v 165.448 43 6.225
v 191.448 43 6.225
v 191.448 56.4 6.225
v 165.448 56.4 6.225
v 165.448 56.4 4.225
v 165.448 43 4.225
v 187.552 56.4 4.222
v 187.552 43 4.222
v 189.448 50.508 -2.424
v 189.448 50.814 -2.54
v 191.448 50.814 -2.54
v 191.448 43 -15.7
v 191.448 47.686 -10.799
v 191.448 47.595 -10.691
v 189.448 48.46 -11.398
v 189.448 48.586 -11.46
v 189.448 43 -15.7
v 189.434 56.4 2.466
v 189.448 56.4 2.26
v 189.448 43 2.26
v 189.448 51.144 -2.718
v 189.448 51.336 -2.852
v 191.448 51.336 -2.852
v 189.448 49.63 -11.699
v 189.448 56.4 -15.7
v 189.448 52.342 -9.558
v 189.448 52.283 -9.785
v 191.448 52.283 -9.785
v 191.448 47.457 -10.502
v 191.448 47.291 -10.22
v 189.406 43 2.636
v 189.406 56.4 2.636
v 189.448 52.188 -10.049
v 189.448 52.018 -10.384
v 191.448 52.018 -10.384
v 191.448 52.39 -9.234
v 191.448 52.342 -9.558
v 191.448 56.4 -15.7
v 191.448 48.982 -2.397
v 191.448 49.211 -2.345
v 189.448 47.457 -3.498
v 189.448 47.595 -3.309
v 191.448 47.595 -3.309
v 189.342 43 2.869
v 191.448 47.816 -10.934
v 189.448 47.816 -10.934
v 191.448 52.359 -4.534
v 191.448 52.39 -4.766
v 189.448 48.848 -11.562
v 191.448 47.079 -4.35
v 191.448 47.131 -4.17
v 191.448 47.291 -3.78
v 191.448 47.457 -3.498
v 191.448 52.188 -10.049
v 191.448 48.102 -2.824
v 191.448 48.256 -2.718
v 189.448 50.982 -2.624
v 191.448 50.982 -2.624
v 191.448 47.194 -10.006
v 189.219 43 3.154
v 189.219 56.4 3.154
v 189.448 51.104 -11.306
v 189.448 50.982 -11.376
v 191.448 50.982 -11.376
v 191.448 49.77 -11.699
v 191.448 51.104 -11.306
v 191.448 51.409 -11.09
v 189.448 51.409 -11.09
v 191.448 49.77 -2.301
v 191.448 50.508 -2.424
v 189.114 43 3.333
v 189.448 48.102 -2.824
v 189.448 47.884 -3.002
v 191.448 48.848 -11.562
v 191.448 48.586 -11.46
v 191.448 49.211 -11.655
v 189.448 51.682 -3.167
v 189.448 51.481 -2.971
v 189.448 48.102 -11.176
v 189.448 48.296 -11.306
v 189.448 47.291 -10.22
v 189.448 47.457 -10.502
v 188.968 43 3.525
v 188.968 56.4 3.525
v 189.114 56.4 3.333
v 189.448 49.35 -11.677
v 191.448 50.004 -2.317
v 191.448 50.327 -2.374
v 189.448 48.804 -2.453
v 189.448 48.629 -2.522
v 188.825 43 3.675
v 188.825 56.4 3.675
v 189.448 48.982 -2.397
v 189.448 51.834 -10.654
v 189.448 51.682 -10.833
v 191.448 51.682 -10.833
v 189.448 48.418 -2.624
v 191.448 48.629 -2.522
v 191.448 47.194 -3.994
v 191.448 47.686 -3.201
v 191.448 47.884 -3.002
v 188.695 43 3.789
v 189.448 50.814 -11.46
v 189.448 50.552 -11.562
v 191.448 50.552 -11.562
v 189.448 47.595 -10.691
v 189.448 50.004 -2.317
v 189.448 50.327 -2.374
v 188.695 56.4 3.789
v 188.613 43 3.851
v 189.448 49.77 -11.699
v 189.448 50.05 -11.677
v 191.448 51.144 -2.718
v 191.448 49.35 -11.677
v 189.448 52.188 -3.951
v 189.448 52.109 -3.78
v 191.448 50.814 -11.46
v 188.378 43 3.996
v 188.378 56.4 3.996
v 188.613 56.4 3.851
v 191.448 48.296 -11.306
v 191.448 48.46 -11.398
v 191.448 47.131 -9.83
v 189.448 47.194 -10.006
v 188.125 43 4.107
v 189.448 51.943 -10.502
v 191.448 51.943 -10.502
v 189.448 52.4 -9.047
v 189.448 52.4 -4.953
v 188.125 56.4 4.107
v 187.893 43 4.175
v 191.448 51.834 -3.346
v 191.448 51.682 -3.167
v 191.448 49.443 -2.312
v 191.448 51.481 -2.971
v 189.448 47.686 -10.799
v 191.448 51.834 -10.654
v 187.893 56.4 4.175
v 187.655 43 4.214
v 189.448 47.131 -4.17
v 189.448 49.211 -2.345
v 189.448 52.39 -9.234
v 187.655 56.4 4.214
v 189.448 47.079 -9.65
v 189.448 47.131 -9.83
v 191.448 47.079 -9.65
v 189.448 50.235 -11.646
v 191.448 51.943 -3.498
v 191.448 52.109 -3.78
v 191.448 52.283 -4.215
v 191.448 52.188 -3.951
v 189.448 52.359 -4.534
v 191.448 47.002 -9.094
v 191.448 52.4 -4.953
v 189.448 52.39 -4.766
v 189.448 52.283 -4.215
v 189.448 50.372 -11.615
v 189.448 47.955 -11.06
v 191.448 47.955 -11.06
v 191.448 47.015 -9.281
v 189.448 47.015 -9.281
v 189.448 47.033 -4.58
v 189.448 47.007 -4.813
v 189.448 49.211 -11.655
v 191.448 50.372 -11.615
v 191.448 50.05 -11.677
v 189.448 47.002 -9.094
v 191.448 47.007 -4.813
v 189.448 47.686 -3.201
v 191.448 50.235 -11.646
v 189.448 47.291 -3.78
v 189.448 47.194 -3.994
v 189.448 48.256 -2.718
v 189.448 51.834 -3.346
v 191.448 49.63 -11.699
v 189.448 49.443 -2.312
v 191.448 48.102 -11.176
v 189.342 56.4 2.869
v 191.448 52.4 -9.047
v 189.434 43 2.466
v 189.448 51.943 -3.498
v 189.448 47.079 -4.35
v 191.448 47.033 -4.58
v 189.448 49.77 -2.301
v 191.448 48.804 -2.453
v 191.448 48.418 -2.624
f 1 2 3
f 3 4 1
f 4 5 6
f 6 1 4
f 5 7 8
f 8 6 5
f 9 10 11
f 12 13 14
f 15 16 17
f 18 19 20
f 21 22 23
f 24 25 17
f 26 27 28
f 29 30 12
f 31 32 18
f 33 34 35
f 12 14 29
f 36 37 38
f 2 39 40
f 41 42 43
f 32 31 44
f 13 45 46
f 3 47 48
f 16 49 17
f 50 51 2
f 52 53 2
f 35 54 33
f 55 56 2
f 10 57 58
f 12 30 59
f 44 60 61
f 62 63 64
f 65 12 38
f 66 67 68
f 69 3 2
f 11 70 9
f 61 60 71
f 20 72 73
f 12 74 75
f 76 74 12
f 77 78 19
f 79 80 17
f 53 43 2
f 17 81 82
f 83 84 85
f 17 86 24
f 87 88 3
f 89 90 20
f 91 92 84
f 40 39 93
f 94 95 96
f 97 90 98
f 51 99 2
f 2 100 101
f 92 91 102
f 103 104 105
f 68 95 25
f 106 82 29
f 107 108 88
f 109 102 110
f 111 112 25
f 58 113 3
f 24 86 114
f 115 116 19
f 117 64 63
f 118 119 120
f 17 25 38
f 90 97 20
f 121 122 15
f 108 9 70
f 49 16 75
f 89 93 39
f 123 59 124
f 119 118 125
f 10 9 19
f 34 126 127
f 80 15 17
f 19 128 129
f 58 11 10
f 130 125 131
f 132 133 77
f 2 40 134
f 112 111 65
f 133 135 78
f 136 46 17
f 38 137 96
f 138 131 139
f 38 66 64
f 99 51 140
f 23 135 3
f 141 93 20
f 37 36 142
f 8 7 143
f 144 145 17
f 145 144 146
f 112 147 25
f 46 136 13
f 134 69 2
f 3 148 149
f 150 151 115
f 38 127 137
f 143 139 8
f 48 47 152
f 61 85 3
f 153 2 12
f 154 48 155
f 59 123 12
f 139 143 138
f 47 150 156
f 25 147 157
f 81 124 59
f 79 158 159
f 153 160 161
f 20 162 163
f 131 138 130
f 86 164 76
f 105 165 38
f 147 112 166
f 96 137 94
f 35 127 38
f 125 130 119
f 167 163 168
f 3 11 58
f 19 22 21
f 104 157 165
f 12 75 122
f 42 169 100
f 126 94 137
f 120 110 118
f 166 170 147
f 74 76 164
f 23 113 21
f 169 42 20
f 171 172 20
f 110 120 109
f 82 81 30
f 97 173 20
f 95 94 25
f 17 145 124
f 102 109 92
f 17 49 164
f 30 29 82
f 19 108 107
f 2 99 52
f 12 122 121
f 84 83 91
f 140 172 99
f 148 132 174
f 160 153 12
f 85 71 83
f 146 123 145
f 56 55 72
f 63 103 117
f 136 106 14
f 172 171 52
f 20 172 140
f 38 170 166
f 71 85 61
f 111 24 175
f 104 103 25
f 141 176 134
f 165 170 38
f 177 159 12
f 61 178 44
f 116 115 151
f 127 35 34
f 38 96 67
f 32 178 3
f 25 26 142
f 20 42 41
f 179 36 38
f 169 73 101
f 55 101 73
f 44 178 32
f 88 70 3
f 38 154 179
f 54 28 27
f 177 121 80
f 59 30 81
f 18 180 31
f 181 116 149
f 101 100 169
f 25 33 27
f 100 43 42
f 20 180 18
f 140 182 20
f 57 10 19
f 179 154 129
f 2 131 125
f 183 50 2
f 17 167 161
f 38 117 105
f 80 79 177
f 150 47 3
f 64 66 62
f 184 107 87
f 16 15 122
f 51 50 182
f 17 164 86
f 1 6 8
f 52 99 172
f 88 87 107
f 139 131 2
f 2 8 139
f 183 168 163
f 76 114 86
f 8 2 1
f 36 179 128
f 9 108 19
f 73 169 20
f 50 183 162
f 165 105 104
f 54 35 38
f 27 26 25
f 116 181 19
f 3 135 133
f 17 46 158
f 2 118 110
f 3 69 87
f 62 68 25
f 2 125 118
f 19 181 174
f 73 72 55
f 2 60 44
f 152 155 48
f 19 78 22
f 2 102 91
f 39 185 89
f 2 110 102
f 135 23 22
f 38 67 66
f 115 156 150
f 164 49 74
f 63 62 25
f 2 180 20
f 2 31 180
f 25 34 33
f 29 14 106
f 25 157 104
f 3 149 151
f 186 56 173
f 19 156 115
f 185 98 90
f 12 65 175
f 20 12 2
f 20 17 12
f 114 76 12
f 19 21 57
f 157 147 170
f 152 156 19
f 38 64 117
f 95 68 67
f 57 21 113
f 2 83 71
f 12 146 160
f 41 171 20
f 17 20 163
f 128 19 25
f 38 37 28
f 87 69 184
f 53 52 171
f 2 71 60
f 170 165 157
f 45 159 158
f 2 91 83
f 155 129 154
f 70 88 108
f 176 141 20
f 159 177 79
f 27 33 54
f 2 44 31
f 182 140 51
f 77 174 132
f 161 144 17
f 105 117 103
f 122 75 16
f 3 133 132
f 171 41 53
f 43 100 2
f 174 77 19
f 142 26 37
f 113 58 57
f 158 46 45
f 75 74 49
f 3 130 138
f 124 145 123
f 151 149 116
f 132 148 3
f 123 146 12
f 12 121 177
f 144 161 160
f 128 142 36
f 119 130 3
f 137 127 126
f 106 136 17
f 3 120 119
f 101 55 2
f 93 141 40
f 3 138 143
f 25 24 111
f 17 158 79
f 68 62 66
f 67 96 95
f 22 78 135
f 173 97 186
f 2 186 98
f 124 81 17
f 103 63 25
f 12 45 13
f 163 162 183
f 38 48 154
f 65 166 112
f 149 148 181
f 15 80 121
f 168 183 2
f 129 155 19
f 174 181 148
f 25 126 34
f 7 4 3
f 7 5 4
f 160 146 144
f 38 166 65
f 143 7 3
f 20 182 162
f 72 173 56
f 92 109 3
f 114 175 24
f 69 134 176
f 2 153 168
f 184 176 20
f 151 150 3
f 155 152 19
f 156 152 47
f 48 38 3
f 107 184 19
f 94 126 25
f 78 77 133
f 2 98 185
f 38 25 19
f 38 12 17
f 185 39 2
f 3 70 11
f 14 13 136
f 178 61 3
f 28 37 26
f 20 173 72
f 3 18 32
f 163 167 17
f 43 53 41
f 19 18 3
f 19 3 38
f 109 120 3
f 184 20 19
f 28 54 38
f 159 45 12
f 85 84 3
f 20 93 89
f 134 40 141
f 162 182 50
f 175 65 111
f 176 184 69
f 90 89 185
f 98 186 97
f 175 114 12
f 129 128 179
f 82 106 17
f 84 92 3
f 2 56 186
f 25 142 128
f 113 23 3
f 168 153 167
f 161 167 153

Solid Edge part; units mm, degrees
sketch "Sketch1" plane through (191.4483, 0, 0) normal (1, 0, 0) x (0, 1, 0)
  line L0 (43, 6.225) -> (43, -15.7)
  line L1 (43, -15.7) -> (56.4, -15.7)
  line L2 (56.4, -15.7) -> (56.4, 6.225)
  line L3 (43, 6.225) -> (56.4, 6.225)
  arc A0 (47, -5) -> (52.4, -5) centre (49.7, -5) cw
  line L4 (52.4, -5) -> (52.4, -9)
  arc A1 (52.4, -9) -> (47, -9) centre (49.7, -9) cw
  line L5 (47, -5) -> (47, -9)
  dimension "D1" = 4
  dimension "D2" = 0.5
  dimension "D3" = 2
extrude "ExtrudedProtrusion_1" add sketch "Sketch1" against normal blind 2
sketch "Sketch2" plane through (189.4483, 49.7, -4.7375) normal (-1, 0, 0) x (0, -1, 0)
  line L0 (6.7, 8.9625) -> (-6.7, 8.9625)
  line L1 (-6.7, 8.9625) -> (-6.7, 10.9625)
  line L2 (-6.7, 10.9625) -> (6.7, 10.9625)
  line L3 (6.7, 10.9625) -> (6.7, 8.9625)
extrude "ExtrudedProtrusion_2" add sketch "Sketch2" along normal blind 30
fillet "Round_1" radius 2 1 edges at (189.4483, 49.7, 4.225)
sketch "Sketch3" plane through (174.4483, 49.7, 6.225) normal (0, 0, 1) x (1, 0, 0)
  line L0 (-15, 6.7) -> (-9, 6.7)
  line L1 (-9, 6.7) -> (-9, -8.8596)
  dimension "D1" = 6
extrude "Cutout1" cut sketch "Sketch3" against normal through all material side at (162.4483, 56.35, 6.225)
properties material "ABS Plastic, medium impact"
